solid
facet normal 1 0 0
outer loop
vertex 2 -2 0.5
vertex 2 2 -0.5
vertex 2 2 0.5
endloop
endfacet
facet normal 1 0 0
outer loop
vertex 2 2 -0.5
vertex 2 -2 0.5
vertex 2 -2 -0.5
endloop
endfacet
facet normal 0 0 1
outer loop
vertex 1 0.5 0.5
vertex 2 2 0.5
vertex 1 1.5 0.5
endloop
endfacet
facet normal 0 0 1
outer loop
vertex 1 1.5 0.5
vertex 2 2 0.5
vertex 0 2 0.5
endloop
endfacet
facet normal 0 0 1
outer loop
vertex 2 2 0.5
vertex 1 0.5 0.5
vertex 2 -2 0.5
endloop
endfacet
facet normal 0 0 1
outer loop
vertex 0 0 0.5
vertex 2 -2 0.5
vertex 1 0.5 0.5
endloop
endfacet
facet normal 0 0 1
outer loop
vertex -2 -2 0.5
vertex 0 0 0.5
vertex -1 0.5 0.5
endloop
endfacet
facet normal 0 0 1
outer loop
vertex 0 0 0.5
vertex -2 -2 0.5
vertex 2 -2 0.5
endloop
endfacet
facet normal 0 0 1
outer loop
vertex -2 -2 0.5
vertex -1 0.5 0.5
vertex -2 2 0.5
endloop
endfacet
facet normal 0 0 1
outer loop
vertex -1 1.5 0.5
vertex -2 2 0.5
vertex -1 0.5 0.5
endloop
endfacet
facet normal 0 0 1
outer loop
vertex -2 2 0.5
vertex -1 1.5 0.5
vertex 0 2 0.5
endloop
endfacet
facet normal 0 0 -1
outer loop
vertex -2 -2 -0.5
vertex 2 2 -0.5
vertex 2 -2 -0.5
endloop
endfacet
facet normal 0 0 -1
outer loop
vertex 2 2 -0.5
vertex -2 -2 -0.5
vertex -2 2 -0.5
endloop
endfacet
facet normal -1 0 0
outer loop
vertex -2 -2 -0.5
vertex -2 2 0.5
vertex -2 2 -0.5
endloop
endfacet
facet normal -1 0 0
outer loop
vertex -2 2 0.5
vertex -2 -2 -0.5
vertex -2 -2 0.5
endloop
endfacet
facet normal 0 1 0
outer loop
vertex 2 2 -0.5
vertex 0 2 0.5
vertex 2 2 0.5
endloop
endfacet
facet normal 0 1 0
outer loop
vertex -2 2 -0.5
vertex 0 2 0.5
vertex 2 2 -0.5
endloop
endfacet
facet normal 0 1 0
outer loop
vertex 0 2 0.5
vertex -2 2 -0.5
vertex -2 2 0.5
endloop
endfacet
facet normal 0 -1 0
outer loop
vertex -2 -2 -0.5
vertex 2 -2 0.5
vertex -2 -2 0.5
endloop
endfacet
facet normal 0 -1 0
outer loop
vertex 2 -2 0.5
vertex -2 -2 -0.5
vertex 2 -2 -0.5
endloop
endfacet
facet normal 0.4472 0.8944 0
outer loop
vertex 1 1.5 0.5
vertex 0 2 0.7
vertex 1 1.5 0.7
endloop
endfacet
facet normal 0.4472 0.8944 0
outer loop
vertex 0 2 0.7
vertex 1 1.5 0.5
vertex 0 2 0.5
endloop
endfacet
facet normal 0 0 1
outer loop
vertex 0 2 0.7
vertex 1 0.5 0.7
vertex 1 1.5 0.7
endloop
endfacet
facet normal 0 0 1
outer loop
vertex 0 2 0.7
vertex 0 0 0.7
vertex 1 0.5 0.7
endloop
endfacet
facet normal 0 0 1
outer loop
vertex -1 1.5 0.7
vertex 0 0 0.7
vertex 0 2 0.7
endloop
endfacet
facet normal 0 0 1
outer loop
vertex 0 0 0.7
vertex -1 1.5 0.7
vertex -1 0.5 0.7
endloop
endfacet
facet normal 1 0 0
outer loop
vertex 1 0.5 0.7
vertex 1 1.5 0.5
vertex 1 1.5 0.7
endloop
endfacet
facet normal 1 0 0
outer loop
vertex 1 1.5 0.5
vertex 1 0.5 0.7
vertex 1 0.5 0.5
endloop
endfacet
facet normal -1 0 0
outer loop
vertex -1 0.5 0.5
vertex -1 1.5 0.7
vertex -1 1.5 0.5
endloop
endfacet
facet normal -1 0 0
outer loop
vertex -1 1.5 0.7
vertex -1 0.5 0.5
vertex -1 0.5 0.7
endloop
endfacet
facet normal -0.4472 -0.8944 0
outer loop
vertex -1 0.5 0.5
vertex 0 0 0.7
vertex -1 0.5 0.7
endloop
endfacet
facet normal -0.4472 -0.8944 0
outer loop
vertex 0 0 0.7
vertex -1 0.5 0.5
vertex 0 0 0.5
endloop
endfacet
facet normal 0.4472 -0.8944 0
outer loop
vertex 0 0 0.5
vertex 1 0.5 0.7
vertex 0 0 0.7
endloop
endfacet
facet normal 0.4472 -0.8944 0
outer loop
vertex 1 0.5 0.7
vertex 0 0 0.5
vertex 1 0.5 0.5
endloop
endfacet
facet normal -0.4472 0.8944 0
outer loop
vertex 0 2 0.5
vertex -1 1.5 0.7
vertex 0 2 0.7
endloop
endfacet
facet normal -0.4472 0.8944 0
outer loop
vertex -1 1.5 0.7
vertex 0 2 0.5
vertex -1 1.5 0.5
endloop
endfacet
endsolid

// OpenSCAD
// Set the dimensions
length = 4;
width = 4;

// Create the square
cube([length, width, 1], center = true);

// Create the hexagon pattern
translate([0, 0, 0.5]) {
  linear_extrude(height = 0.2) {
    polygon(points = [
      [0, 0],
      [length/4, width/8],
      [length/4, 3*width/8],
      [0, width/2],
      [-length/4, 3*width/8],
      [-length/4, width/8]
    ], paths = [[0,1,2,3,4,5]]);
  }
}
